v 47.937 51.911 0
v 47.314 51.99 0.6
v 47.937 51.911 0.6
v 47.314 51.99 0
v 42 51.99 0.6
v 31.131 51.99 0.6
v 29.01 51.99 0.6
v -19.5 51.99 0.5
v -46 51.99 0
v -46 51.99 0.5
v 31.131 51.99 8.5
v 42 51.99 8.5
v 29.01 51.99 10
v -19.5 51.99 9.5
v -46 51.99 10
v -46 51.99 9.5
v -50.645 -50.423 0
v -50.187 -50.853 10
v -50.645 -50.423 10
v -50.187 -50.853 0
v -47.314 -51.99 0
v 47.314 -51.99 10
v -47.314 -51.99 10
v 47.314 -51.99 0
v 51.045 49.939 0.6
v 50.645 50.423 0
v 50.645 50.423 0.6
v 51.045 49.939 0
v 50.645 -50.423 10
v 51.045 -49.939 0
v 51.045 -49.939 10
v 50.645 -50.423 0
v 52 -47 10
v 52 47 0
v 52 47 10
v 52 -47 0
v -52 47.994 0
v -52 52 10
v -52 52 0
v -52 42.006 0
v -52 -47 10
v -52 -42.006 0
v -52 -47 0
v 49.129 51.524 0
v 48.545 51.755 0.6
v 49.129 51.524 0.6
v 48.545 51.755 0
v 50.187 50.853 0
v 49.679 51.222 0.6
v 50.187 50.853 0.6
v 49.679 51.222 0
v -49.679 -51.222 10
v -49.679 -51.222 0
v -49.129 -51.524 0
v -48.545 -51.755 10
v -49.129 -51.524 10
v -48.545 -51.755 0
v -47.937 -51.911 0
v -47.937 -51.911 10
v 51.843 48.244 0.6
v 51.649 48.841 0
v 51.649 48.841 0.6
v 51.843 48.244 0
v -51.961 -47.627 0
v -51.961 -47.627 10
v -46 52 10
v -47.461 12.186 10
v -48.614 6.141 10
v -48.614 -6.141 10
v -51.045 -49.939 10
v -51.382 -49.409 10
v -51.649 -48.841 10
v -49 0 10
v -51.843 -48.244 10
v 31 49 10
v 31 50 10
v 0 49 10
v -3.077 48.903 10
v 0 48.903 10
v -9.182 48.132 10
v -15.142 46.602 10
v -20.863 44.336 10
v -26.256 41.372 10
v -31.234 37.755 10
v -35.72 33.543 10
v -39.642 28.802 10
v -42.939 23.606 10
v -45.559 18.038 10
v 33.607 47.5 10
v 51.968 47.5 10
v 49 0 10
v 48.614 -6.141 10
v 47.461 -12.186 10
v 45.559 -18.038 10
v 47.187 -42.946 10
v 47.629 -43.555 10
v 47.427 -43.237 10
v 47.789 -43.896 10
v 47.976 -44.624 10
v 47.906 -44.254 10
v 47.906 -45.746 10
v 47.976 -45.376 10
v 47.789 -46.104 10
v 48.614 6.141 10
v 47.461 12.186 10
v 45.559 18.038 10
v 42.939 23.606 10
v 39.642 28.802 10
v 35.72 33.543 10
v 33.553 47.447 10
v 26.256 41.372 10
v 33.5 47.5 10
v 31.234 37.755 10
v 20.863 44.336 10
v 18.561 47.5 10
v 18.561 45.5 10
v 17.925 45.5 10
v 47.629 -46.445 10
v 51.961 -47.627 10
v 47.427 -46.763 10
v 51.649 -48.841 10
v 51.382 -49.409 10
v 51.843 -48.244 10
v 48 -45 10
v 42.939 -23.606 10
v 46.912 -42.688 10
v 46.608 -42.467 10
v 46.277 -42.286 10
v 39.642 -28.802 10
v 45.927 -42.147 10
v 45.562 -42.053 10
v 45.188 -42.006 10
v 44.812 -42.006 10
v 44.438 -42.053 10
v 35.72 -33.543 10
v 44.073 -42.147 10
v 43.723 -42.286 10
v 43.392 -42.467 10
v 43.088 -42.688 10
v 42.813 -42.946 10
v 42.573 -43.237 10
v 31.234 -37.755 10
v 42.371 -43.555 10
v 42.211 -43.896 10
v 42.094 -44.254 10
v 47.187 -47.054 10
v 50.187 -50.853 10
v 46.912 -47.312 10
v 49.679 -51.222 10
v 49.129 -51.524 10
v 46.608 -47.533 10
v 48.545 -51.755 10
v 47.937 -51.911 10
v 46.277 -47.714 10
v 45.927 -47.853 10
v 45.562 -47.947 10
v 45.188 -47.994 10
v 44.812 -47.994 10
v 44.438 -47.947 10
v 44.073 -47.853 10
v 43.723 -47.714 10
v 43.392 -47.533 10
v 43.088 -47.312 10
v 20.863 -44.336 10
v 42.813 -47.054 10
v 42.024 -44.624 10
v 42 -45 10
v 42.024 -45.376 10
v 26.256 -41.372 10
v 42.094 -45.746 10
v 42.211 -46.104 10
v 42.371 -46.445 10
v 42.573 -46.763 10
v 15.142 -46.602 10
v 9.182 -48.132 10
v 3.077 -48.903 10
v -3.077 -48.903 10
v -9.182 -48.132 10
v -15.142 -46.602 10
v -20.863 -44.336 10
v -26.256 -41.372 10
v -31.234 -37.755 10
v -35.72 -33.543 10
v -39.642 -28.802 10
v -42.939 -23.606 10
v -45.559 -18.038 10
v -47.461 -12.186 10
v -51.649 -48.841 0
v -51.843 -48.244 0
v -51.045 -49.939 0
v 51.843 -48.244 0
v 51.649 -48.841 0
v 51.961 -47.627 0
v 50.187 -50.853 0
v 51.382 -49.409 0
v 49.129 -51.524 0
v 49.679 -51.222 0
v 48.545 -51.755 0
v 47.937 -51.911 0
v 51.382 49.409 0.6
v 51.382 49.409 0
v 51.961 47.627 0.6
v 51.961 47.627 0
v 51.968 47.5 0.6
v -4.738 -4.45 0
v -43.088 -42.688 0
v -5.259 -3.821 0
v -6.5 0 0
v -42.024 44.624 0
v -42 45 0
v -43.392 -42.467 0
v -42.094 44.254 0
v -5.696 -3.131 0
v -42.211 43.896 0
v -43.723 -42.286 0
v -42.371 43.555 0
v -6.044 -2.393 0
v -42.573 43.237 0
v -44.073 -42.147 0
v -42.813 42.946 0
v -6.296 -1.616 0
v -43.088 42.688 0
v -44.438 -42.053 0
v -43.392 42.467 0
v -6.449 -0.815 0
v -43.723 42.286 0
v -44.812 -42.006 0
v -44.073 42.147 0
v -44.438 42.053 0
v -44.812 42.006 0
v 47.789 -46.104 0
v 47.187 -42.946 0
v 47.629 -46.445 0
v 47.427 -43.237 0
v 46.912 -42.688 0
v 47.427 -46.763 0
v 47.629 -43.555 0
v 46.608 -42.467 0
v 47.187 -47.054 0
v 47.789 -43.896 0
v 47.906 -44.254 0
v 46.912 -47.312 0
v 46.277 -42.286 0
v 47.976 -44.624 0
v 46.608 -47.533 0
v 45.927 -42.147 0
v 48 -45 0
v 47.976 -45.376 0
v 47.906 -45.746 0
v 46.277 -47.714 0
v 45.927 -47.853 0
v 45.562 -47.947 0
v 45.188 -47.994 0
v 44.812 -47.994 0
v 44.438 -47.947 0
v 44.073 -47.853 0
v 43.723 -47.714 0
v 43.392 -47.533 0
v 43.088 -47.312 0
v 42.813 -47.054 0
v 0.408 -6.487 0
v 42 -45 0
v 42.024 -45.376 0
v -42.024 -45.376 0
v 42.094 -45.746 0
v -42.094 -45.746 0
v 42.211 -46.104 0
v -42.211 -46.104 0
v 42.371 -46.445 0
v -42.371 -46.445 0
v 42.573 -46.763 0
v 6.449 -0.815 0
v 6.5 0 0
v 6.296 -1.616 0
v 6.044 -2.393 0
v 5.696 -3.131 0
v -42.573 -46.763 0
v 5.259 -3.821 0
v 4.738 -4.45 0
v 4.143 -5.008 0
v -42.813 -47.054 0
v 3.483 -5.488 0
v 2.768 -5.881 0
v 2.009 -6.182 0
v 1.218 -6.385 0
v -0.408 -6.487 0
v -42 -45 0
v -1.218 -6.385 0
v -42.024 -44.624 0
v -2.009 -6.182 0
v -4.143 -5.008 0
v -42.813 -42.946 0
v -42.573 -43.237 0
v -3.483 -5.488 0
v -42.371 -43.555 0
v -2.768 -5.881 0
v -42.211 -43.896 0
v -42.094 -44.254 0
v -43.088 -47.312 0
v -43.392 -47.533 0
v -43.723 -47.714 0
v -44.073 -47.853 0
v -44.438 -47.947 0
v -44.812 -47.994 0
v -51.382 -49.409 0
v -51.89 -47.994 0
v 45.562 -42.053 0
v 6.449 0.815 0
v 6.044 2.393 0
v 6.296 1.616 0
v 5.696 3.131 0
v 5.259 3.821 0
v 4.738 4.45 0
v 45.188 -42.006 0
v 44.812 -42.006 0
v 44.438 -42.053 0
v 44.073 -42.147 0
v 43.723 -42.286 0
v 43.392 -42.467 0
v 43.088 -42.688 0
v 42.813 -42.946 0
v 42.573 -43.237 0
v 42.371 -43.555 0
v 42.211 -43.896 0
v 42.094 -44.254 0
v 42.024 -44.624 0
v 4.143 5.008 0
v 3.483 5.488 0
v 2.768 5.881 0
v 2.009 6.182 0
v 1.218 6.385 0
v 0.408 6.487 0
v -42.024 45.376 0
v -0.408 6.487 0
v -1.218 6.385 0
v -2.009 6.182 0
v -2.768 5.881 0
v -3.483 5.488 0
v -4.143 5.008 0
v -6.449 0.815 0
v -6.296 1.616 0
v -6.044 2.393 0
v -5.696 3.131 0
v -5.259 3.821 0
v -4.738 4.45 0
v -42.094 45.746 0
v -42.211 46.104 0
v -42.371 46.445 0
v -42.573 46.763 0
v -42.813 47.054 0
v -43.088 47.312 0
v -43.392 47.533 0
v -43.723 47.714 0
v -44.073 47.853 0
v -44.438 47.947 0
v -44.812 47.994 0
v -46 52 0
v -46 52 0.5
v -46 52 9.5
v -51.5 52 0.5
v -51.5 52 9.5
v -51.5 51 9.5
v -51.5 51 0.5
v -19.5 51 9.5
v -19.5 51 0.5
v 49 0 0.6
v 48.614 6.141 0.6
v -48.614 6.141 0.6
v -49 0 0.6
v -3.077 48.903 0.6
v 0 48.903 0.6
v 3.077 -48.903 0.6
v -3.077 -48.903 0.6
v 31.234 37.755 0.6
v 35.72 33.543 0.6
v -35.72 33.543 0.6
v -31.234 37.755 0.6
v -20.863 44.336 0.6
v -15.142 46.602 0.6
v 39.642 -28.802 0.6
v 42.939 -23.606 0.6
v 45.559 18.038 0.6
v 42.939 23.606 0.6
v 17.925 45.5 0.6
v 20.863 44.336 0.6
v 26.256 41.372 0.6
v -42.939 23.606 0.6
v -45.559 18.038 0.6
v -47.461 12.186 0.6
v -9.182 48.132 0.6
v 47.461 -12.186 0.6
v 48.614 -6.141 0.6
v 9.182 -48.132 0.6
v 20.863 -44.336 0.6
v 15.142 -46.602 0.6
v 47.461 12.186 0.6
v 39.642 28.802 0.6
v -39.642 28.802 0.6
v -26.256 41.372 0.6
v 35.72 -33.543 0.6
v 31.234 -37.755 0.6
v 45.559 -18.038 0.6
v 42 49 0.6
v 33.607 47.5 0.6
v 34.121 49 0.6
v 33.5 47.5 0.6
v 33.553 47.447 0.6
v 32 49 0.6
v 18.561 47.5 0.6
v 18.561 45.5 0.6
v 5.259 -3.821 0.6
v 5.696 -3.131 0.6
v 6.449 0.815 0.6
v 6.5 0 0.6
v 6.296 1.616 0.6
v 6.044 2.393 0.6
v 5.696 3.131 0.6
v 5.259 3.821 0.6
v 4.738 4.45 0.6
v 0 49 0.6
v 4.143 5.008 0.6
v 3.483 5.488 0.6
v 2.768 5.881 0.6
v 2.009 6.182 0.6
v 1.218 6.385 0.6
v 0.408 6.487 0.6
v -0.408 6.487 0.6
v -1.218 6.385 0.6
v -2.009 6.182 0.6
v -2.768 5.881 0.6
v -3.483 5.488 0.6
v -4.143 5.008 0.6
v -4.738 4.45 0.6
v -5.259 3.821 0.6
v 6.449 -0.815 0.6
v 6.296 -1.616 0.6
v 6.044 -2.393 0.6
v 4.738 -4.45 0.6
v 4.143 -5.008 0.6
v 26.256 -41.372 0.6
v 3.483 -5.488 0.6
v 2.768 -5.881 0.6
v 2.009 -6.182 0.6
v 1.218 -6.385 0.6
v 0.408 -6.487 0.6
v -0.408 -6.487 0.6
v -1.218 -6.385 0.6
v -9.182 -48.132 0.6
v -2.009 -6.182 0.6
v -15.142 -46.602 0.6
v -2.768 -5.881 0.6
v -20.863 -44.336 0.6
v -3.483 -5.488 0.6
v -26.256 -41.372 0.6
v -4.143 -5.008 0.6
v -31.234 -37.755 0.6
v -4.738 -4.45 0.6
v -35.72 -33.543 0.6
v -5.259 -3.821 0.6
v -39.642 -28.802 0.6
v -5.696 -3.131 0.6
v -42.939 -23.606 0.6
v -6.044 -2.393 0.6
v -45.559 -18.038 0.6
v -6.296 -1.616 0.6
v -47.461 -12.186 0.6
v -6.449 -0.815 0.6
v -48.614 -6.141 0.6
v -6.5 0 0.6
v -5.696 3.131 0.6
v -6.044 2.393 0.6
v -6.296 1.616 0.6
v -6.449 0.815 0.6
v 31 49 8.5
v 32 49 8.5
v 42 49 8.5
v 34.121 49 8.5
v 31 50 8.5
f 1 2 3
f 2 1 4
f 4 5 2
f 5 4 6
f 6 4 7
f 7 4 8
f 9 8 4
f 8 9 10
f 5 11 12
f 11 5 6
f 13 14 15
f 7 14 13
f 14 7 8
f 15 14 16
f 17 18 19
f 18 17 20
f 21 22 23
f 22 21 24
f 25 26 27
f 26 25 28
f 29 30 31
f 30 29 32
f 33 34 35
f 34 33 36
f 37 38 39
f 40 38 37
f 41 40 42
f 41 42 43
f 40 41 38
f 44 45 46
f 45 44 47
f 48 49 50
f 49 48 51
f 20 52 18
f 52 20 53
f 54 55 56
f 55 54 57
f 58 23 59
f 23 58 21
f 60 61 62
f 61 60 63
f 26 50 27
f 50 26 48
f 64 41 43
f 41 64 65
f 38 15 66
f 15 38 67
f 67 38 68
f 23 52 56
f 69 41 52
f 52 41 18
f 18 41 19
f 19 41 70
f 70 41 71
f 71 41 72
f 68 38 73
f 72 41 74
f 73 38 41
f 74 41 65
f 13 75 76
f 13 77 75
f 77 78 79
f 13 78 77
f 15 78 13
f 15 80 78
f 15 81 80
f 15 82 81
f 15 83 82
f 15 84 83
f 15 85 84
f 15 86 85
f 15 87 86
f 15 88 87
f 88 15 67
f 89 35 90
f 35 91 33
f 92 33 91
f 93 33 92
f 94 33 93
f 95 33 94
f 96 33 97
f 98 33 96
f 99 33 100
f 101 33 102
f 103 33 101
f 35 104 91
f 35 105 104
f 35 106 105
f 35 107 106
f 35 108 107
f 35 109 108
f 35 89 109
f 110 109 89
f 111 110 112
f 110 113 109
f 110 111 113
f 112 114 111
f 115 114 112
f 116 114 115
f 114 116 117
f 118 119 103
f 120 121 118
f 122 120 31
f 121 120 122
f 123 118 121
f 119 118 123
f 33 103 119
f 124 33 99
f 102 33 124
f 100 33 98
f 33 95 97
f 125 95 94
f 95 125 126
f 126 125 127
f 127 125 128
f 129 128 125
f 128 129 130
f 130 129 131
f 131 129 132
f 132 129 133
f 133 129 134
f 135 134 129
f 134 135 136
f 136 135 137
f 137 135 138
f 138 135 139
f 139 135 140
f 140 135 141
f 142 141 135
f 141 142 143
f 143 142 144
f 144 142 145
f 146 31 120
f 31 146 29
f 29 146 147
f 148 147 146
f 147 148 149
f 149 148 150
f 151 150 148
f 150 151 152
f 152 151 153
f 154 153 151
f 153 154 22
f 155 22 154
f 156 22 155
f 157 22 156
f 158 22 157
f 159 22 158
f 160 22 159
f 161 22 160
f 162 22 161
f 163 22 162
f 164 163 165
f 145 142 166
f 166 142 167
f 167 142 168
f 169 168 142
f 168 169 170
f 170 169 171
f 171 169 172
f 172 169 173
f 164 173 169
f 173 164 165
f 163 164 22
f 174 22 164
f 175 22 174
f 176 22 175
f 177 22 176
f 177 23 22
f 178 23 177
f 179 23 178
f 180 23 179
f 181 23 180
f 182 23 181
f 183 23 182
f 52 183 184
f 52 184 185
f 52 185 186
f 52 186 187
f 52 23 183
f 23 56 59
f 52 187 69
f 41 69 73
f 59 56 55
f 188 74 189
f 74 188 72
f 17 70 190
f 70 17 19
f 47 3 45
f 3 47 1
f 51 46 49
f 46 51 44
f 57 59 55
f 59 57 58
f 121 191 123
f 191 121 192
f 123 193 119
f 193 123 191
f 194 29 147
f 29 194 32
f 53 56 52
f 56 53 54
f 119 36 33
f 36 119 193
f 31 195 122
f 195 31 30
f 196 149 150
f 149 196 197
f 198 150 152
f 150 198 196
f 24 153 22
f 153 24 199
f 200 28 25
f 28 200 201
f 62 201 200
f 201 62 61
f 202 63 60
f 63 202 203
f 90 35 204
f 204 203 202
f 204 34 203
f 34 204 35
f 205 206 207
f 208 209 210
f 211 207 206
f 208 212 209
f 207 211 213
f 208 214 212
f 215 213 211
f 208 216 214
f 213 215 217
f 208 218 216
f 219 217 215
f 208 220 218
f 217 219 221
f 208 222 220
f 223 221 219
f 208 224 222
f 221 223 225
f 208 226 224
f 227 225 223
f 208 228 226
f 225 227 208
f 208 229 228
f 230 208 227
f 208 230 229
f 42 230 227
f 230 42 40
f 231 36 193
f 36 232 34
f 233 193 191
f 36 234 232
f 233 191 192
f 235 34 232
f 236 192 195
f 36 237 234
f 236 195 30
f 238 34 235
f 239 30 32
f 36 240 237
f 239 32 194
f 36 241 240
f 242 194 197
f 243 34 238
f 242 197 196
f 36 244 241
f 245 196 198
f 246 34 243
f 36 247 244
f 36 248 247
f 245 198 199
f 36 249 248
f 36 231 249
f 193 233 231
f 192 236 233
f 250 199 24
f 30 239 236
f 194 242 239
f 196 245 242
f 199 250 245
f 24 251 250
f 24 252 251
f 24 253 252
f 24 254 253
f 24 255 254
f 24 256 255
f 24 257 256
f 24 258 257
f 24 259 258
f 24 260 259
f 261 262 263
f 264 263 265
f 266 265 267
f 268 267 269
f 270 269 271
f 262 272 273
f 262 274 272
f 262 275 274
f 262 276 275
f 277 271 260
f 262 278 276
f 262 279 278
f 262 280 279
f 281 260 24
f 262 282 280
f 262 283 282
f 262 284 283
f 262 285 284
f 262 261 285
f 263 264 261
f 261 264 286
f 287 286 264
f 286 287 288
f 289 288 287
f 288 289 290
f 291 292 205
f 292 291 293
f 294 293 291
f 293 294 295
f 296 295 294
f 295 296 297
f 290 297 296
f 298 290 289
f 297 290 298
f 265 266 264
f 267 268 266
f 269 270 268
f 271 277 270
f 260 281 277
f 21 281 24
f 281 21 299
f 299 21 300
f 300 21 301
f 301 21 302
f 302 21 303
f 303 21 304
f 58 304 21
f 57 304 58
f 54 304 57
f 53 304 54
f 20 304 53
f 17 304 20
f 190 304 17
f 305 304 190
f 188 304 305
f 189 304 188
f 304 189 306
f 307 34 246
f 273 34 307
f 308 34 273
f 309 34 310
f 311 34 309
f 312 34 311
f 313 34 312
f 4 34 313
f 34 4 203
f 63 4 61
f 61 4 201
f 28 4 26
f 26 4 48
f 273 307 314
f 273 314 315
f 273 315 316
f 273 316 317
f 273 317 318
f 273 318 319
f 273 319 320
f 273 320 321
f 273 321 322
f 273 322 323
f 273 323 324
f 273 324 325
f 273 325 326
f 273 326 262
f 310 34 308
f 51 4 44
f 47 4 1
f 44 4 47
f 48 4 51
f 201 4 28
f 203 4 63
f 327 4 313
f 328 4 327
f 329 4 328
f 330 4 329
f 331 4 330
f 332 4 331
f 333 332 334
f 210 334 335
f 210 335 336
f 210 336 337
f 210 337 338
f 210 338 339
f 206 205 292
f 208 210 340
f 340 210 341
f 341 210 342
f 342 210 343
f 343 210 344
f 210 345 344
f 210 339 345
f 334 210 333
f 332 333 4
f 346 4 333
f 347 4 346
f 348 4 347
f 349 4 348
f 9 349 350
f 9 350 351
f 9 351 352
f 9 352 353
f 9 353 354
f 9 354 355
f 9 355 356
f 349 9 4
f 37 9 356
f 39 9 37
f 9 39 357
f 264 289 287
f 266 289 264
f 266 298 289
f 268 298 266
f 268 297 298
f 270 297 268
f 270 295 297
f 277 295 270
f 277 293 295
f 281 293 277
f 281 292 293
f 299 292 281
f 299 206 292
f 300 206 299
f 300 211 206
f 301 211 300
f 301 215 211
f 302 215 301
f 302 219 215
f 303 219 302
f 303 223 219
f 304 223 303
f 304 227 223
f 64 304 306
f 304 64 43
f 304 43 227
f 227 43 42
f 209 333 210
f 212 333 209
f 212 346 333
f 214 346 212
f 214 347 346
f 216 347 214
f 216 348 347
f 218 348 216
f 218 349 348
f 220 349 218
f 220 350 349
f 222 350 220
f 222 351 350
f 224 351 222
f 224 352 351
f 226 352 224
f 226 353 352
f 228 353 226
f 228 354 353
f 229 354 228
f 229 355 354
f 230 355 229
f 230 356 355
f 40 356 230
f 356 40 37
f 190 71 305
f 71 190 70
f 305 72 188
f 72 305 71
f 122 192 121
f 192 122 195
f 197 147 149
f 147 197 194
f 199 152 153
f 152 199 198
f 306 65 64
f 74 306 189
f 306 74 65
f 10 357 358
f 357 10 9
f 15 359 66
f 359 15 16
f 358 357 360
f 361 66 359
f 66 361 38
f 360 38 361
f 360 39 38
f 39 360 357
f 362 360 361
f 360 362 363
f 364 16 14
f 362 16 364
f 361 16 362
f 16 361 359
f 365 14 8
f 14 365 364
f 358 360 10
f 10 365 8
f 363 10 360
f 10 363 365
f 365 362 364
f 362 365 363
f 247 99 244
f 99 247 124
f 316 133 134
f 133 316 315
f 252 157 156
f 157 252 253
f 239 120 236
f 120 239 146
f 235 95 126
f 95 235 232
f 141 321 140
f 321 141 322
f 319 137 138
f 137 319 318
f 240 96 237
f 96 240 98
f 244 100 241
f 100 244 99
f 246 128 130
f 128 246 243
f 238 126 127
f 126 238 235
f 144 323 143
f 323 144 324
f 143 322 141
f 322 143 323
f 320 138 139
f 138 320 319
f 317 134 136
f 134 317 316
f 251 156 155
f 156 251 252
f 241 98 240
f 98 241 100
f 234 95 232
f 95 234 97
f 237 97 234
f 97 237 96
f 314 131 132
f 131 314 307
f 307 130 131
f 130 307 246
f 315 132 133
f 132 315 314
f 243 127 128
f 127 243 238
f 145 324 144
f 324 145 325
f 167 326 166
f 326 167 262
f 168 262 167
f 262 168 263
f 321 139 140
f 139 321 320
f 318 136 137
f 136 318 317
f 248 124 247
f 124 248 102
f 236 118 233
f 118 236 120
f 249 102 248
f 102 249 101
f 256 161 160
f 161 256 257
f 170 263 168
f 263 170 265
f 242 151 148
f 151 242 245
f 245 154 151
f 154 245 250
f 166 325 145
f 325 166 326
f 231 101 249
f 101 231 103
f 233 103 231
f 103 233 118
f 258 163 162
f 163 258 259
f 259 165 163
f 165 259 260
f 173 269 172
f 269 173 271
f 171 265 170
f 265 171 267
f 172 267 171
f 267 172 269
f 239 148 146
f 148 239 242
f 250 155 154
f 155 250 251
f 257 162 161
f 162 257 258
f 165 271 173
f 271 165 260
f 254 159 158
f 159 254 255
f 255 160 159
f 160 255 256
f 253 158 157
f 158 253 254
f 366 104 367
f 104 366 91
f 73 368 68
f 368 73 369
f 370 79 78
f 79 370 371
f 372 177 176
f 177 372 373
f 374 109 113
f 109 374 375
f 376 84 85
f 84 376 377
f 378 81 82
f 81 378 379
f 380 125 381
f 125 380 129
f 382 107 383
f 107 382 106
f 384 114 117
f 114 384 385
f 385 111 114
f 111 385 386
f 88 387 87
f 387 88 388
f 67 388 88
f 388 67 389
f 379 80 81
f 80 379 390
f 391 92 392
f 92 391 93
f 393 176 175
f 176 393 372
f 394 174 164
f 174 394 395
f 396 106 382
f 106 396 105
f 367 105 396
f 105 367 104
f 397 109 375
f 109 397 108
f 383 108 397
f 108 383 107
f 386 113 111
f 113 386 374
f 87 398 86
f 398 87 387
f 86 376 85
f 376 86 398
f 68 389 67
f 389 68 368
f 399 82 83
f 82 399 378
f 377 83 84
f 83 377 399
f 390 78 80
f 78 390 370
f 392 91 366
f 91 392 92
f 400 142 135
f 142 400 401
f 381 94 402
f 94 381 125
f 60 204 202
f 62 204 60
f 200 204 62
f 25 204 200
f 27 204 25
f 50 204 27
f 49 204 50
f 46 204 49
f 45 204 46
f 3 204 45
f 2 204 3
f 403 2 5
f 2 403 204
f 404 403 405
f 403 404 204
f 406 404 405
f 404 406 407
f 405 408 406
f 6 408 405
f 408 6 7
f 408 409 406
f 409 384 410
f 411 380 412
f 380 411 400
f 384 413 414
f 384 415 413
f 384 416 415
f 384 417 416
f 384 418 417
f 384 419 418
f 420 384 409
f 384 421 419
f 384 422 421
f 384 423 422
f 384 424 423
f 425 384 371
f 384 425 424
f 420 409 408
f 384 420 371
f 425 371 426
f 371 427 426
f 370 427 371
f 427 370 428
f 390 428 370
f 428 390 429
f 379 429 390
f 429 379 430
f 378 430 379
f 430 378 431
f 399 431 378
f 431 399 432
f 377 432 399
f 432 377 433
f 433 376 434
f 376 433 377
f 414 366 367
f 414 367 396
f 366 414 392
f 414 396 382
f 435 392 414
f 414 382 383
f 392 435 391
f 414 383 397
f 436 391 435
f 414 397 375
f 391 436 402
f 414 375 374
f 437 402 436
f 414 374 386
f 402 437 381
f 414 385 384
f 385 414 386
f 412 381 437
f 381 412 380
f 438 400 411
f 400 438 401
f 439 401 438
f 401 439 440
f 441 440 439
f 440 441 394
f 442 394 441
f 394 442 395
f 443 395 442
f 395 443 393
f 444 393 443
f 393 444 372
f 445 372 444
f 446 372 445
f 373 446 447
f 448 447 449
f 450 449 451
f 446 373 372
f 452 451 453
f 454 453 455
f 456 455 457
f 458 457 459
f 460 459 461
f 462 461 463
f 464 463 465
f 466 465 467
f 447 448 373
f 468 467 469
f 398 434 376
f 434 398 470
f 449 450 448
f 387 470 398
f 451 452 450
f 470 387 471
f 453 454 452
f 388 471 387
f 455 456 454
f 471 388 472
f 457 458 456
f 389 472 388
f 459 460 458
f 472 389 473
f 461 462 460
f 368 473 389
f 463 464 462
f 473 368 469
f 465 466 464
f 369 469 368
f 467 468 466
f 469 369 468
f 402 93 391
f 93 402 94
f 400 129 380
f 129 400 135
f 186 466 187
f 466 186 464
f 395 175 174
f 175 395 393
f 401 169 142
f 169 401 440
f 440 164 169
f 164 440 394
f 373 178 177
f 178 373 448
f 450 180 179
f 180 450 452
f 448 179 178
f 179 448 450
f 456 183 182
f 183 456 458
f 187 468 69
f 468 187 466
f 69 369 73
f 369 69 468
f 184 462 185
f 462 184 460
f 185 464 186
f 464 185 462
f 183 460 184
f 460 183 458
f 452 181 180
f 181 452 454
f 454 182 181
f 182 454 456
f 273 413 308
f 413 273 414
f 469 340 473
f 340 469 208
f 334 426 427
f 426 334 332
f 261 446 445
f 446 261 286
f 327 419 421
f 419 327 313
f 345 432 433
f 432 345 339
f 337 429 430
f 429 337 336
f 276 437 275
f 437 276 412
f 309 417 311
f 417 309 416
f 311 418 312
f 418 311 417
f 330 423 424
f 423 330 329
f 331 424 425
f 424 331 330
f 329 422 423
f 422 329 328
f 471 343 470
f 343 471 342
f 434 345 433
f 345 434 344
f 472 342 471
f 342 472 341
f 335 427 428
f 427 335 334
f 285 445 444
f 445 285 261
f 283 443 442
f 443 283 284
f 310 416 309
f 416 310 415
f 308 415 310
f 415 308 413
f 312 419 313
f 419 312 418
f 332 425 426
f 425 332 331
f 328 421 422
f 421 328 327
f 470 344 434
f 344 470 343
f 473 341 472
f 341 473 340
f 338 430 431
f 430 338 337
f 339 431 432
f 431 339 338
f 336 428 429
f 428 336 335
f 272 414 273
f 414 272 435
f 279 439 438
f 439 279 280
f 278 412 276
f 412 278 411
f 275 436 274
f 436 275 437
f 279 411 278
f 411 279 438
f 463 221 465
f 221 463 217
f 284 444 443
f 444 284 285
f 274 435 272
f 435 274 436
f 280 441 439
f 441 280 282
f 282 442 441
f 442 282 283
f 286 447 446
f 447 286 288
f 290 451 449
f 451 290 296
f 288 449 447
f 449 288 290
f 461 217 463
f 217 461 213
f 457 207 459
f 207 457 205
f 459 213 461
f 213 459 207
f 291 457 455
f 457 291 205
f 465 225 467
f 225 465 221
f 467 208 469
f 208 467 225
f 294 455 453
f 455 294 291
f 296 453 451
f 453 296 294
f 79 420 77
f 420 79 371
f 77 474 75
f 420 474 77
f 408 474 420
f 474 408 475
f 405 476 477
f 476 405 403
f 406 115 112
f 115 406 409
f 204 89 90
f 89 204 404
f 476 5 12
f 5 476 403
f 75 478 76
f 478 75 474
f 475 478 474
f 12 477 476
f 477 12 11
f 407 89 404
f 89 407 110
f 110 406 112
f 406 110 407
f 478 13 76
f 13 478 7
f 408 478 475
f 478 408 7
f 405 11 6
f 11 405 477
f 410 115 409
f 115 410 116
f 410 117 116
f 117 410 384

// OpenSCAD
$fn = 50;


difference() {
	union() {
		hull() {
			translate(v = [-47.0000000000, 47.0000000000, 0]) {
				cylinder(h = 10, r = 5);
			}
			translate(v = [47.0000000000, 47.0000000000, 0]) {
				cylinder(h = 10, r = 5);
			}
			translate(v = [-47.0000000000, -47.0000000000, 0]) {
				cylinder(h = 10, r = 5);
			}
			translate(v = [47.0000000000, -47.0000000000, 0]) {
				cylinder(h = 10, r = 5);
			}
		}
		translate(v = [-52.0000000000, 46.0000000000, 0]) {
			cube(size = [6, 6, 10]);
		}
	}
	union() {
		translate(v = [-52.5000000000, -45.0000000000, -250.0000000000]) {
			rotate(a = [0, 0, 0]) {
				difference() {
					union() {
						hull() {
							translate(v = [7.5000000000, 0, 0]) {
								cylinder(h = 250, r = 3.0000000000, r1 = 3.0000000000, r2 = 3.0000000000);
							}
							translate(v = [-7.5000000000, 0, 0]) {
								cylinder(h = 250, r = 3.0000000000, r1 = 3.0000000000, r2 = 3.0000000000);
							}
						}
					}
					union();
				}
			}
		}
		translate(v = [-52.5000000000, 45.0000000000, -250.0000000000]) {
			rotate(a = [0, 0, 0]) {
				difference() {
					union() {
						hull() {
							translate(v = [7.5000000000, 0, 0]) {
								cylinder(h = 250, r = 3.0000000000, r1 = 3.0000000000, r2 = 3.0000000000);
							}
							translate(v = [-7.5000000000, 0, 0]) {
								cylinder(h = 250, r = 3.0000000000, r1 = 3.0000000000, r2 = 3.0000000000);
							}
						}
					}
					union();
				}
			}
		}
		translate(v = [-51.5000000000, 51.0000000000, 0.5000000000]) {
			cube(size = [32, 1, 9.0000000000]);
		}
		translate(v = [45.0000000000, -45.0000000000, -50.0000000000]) {
			cylinder(h = 100, r = 3.0000000000);
		}
		translate(v = [0, 0, 0.6000000000]) {
			cylinder(h = 12.4000000000, r = 49.0000000000);
		}
		translate(v = [0, 0, -5.0000000000]) {
			cylinder(h = 10, r = 6.5000000000);
		}
		translate(v = [0.0000000000, 47.5000000000, 0.6000000000]) {
			cube(size = [52.0000000000, 1.5000000000, 12.4000000000]);
		}
		translate(v = [42.0000000000, 47.5000000000, 0.6000000000]) {
			cube(size = [10, 4.5000000000, 12.4000000000]);
		}
		translate(v = [31.0000000000, 47.5000000000, 8.5000000000]) {
			cube(size = [21, 4.5000000000, 1.5000000000]);
		}
		translate(v = [28.2500000000, 52.7500000000, 0.6000000000]) {
			rotate(a = [0, 0, -45]) {
				cube(size = [7.5000000000, 1.5000000000, 12.4000000000]);
			}
		}
		translate(v = [11.0610000000, 45.5000000000, 0.6000000000]) {
			cube(size = [7.5000000000, 2, 9.4000000000]);
		}
	}
}
